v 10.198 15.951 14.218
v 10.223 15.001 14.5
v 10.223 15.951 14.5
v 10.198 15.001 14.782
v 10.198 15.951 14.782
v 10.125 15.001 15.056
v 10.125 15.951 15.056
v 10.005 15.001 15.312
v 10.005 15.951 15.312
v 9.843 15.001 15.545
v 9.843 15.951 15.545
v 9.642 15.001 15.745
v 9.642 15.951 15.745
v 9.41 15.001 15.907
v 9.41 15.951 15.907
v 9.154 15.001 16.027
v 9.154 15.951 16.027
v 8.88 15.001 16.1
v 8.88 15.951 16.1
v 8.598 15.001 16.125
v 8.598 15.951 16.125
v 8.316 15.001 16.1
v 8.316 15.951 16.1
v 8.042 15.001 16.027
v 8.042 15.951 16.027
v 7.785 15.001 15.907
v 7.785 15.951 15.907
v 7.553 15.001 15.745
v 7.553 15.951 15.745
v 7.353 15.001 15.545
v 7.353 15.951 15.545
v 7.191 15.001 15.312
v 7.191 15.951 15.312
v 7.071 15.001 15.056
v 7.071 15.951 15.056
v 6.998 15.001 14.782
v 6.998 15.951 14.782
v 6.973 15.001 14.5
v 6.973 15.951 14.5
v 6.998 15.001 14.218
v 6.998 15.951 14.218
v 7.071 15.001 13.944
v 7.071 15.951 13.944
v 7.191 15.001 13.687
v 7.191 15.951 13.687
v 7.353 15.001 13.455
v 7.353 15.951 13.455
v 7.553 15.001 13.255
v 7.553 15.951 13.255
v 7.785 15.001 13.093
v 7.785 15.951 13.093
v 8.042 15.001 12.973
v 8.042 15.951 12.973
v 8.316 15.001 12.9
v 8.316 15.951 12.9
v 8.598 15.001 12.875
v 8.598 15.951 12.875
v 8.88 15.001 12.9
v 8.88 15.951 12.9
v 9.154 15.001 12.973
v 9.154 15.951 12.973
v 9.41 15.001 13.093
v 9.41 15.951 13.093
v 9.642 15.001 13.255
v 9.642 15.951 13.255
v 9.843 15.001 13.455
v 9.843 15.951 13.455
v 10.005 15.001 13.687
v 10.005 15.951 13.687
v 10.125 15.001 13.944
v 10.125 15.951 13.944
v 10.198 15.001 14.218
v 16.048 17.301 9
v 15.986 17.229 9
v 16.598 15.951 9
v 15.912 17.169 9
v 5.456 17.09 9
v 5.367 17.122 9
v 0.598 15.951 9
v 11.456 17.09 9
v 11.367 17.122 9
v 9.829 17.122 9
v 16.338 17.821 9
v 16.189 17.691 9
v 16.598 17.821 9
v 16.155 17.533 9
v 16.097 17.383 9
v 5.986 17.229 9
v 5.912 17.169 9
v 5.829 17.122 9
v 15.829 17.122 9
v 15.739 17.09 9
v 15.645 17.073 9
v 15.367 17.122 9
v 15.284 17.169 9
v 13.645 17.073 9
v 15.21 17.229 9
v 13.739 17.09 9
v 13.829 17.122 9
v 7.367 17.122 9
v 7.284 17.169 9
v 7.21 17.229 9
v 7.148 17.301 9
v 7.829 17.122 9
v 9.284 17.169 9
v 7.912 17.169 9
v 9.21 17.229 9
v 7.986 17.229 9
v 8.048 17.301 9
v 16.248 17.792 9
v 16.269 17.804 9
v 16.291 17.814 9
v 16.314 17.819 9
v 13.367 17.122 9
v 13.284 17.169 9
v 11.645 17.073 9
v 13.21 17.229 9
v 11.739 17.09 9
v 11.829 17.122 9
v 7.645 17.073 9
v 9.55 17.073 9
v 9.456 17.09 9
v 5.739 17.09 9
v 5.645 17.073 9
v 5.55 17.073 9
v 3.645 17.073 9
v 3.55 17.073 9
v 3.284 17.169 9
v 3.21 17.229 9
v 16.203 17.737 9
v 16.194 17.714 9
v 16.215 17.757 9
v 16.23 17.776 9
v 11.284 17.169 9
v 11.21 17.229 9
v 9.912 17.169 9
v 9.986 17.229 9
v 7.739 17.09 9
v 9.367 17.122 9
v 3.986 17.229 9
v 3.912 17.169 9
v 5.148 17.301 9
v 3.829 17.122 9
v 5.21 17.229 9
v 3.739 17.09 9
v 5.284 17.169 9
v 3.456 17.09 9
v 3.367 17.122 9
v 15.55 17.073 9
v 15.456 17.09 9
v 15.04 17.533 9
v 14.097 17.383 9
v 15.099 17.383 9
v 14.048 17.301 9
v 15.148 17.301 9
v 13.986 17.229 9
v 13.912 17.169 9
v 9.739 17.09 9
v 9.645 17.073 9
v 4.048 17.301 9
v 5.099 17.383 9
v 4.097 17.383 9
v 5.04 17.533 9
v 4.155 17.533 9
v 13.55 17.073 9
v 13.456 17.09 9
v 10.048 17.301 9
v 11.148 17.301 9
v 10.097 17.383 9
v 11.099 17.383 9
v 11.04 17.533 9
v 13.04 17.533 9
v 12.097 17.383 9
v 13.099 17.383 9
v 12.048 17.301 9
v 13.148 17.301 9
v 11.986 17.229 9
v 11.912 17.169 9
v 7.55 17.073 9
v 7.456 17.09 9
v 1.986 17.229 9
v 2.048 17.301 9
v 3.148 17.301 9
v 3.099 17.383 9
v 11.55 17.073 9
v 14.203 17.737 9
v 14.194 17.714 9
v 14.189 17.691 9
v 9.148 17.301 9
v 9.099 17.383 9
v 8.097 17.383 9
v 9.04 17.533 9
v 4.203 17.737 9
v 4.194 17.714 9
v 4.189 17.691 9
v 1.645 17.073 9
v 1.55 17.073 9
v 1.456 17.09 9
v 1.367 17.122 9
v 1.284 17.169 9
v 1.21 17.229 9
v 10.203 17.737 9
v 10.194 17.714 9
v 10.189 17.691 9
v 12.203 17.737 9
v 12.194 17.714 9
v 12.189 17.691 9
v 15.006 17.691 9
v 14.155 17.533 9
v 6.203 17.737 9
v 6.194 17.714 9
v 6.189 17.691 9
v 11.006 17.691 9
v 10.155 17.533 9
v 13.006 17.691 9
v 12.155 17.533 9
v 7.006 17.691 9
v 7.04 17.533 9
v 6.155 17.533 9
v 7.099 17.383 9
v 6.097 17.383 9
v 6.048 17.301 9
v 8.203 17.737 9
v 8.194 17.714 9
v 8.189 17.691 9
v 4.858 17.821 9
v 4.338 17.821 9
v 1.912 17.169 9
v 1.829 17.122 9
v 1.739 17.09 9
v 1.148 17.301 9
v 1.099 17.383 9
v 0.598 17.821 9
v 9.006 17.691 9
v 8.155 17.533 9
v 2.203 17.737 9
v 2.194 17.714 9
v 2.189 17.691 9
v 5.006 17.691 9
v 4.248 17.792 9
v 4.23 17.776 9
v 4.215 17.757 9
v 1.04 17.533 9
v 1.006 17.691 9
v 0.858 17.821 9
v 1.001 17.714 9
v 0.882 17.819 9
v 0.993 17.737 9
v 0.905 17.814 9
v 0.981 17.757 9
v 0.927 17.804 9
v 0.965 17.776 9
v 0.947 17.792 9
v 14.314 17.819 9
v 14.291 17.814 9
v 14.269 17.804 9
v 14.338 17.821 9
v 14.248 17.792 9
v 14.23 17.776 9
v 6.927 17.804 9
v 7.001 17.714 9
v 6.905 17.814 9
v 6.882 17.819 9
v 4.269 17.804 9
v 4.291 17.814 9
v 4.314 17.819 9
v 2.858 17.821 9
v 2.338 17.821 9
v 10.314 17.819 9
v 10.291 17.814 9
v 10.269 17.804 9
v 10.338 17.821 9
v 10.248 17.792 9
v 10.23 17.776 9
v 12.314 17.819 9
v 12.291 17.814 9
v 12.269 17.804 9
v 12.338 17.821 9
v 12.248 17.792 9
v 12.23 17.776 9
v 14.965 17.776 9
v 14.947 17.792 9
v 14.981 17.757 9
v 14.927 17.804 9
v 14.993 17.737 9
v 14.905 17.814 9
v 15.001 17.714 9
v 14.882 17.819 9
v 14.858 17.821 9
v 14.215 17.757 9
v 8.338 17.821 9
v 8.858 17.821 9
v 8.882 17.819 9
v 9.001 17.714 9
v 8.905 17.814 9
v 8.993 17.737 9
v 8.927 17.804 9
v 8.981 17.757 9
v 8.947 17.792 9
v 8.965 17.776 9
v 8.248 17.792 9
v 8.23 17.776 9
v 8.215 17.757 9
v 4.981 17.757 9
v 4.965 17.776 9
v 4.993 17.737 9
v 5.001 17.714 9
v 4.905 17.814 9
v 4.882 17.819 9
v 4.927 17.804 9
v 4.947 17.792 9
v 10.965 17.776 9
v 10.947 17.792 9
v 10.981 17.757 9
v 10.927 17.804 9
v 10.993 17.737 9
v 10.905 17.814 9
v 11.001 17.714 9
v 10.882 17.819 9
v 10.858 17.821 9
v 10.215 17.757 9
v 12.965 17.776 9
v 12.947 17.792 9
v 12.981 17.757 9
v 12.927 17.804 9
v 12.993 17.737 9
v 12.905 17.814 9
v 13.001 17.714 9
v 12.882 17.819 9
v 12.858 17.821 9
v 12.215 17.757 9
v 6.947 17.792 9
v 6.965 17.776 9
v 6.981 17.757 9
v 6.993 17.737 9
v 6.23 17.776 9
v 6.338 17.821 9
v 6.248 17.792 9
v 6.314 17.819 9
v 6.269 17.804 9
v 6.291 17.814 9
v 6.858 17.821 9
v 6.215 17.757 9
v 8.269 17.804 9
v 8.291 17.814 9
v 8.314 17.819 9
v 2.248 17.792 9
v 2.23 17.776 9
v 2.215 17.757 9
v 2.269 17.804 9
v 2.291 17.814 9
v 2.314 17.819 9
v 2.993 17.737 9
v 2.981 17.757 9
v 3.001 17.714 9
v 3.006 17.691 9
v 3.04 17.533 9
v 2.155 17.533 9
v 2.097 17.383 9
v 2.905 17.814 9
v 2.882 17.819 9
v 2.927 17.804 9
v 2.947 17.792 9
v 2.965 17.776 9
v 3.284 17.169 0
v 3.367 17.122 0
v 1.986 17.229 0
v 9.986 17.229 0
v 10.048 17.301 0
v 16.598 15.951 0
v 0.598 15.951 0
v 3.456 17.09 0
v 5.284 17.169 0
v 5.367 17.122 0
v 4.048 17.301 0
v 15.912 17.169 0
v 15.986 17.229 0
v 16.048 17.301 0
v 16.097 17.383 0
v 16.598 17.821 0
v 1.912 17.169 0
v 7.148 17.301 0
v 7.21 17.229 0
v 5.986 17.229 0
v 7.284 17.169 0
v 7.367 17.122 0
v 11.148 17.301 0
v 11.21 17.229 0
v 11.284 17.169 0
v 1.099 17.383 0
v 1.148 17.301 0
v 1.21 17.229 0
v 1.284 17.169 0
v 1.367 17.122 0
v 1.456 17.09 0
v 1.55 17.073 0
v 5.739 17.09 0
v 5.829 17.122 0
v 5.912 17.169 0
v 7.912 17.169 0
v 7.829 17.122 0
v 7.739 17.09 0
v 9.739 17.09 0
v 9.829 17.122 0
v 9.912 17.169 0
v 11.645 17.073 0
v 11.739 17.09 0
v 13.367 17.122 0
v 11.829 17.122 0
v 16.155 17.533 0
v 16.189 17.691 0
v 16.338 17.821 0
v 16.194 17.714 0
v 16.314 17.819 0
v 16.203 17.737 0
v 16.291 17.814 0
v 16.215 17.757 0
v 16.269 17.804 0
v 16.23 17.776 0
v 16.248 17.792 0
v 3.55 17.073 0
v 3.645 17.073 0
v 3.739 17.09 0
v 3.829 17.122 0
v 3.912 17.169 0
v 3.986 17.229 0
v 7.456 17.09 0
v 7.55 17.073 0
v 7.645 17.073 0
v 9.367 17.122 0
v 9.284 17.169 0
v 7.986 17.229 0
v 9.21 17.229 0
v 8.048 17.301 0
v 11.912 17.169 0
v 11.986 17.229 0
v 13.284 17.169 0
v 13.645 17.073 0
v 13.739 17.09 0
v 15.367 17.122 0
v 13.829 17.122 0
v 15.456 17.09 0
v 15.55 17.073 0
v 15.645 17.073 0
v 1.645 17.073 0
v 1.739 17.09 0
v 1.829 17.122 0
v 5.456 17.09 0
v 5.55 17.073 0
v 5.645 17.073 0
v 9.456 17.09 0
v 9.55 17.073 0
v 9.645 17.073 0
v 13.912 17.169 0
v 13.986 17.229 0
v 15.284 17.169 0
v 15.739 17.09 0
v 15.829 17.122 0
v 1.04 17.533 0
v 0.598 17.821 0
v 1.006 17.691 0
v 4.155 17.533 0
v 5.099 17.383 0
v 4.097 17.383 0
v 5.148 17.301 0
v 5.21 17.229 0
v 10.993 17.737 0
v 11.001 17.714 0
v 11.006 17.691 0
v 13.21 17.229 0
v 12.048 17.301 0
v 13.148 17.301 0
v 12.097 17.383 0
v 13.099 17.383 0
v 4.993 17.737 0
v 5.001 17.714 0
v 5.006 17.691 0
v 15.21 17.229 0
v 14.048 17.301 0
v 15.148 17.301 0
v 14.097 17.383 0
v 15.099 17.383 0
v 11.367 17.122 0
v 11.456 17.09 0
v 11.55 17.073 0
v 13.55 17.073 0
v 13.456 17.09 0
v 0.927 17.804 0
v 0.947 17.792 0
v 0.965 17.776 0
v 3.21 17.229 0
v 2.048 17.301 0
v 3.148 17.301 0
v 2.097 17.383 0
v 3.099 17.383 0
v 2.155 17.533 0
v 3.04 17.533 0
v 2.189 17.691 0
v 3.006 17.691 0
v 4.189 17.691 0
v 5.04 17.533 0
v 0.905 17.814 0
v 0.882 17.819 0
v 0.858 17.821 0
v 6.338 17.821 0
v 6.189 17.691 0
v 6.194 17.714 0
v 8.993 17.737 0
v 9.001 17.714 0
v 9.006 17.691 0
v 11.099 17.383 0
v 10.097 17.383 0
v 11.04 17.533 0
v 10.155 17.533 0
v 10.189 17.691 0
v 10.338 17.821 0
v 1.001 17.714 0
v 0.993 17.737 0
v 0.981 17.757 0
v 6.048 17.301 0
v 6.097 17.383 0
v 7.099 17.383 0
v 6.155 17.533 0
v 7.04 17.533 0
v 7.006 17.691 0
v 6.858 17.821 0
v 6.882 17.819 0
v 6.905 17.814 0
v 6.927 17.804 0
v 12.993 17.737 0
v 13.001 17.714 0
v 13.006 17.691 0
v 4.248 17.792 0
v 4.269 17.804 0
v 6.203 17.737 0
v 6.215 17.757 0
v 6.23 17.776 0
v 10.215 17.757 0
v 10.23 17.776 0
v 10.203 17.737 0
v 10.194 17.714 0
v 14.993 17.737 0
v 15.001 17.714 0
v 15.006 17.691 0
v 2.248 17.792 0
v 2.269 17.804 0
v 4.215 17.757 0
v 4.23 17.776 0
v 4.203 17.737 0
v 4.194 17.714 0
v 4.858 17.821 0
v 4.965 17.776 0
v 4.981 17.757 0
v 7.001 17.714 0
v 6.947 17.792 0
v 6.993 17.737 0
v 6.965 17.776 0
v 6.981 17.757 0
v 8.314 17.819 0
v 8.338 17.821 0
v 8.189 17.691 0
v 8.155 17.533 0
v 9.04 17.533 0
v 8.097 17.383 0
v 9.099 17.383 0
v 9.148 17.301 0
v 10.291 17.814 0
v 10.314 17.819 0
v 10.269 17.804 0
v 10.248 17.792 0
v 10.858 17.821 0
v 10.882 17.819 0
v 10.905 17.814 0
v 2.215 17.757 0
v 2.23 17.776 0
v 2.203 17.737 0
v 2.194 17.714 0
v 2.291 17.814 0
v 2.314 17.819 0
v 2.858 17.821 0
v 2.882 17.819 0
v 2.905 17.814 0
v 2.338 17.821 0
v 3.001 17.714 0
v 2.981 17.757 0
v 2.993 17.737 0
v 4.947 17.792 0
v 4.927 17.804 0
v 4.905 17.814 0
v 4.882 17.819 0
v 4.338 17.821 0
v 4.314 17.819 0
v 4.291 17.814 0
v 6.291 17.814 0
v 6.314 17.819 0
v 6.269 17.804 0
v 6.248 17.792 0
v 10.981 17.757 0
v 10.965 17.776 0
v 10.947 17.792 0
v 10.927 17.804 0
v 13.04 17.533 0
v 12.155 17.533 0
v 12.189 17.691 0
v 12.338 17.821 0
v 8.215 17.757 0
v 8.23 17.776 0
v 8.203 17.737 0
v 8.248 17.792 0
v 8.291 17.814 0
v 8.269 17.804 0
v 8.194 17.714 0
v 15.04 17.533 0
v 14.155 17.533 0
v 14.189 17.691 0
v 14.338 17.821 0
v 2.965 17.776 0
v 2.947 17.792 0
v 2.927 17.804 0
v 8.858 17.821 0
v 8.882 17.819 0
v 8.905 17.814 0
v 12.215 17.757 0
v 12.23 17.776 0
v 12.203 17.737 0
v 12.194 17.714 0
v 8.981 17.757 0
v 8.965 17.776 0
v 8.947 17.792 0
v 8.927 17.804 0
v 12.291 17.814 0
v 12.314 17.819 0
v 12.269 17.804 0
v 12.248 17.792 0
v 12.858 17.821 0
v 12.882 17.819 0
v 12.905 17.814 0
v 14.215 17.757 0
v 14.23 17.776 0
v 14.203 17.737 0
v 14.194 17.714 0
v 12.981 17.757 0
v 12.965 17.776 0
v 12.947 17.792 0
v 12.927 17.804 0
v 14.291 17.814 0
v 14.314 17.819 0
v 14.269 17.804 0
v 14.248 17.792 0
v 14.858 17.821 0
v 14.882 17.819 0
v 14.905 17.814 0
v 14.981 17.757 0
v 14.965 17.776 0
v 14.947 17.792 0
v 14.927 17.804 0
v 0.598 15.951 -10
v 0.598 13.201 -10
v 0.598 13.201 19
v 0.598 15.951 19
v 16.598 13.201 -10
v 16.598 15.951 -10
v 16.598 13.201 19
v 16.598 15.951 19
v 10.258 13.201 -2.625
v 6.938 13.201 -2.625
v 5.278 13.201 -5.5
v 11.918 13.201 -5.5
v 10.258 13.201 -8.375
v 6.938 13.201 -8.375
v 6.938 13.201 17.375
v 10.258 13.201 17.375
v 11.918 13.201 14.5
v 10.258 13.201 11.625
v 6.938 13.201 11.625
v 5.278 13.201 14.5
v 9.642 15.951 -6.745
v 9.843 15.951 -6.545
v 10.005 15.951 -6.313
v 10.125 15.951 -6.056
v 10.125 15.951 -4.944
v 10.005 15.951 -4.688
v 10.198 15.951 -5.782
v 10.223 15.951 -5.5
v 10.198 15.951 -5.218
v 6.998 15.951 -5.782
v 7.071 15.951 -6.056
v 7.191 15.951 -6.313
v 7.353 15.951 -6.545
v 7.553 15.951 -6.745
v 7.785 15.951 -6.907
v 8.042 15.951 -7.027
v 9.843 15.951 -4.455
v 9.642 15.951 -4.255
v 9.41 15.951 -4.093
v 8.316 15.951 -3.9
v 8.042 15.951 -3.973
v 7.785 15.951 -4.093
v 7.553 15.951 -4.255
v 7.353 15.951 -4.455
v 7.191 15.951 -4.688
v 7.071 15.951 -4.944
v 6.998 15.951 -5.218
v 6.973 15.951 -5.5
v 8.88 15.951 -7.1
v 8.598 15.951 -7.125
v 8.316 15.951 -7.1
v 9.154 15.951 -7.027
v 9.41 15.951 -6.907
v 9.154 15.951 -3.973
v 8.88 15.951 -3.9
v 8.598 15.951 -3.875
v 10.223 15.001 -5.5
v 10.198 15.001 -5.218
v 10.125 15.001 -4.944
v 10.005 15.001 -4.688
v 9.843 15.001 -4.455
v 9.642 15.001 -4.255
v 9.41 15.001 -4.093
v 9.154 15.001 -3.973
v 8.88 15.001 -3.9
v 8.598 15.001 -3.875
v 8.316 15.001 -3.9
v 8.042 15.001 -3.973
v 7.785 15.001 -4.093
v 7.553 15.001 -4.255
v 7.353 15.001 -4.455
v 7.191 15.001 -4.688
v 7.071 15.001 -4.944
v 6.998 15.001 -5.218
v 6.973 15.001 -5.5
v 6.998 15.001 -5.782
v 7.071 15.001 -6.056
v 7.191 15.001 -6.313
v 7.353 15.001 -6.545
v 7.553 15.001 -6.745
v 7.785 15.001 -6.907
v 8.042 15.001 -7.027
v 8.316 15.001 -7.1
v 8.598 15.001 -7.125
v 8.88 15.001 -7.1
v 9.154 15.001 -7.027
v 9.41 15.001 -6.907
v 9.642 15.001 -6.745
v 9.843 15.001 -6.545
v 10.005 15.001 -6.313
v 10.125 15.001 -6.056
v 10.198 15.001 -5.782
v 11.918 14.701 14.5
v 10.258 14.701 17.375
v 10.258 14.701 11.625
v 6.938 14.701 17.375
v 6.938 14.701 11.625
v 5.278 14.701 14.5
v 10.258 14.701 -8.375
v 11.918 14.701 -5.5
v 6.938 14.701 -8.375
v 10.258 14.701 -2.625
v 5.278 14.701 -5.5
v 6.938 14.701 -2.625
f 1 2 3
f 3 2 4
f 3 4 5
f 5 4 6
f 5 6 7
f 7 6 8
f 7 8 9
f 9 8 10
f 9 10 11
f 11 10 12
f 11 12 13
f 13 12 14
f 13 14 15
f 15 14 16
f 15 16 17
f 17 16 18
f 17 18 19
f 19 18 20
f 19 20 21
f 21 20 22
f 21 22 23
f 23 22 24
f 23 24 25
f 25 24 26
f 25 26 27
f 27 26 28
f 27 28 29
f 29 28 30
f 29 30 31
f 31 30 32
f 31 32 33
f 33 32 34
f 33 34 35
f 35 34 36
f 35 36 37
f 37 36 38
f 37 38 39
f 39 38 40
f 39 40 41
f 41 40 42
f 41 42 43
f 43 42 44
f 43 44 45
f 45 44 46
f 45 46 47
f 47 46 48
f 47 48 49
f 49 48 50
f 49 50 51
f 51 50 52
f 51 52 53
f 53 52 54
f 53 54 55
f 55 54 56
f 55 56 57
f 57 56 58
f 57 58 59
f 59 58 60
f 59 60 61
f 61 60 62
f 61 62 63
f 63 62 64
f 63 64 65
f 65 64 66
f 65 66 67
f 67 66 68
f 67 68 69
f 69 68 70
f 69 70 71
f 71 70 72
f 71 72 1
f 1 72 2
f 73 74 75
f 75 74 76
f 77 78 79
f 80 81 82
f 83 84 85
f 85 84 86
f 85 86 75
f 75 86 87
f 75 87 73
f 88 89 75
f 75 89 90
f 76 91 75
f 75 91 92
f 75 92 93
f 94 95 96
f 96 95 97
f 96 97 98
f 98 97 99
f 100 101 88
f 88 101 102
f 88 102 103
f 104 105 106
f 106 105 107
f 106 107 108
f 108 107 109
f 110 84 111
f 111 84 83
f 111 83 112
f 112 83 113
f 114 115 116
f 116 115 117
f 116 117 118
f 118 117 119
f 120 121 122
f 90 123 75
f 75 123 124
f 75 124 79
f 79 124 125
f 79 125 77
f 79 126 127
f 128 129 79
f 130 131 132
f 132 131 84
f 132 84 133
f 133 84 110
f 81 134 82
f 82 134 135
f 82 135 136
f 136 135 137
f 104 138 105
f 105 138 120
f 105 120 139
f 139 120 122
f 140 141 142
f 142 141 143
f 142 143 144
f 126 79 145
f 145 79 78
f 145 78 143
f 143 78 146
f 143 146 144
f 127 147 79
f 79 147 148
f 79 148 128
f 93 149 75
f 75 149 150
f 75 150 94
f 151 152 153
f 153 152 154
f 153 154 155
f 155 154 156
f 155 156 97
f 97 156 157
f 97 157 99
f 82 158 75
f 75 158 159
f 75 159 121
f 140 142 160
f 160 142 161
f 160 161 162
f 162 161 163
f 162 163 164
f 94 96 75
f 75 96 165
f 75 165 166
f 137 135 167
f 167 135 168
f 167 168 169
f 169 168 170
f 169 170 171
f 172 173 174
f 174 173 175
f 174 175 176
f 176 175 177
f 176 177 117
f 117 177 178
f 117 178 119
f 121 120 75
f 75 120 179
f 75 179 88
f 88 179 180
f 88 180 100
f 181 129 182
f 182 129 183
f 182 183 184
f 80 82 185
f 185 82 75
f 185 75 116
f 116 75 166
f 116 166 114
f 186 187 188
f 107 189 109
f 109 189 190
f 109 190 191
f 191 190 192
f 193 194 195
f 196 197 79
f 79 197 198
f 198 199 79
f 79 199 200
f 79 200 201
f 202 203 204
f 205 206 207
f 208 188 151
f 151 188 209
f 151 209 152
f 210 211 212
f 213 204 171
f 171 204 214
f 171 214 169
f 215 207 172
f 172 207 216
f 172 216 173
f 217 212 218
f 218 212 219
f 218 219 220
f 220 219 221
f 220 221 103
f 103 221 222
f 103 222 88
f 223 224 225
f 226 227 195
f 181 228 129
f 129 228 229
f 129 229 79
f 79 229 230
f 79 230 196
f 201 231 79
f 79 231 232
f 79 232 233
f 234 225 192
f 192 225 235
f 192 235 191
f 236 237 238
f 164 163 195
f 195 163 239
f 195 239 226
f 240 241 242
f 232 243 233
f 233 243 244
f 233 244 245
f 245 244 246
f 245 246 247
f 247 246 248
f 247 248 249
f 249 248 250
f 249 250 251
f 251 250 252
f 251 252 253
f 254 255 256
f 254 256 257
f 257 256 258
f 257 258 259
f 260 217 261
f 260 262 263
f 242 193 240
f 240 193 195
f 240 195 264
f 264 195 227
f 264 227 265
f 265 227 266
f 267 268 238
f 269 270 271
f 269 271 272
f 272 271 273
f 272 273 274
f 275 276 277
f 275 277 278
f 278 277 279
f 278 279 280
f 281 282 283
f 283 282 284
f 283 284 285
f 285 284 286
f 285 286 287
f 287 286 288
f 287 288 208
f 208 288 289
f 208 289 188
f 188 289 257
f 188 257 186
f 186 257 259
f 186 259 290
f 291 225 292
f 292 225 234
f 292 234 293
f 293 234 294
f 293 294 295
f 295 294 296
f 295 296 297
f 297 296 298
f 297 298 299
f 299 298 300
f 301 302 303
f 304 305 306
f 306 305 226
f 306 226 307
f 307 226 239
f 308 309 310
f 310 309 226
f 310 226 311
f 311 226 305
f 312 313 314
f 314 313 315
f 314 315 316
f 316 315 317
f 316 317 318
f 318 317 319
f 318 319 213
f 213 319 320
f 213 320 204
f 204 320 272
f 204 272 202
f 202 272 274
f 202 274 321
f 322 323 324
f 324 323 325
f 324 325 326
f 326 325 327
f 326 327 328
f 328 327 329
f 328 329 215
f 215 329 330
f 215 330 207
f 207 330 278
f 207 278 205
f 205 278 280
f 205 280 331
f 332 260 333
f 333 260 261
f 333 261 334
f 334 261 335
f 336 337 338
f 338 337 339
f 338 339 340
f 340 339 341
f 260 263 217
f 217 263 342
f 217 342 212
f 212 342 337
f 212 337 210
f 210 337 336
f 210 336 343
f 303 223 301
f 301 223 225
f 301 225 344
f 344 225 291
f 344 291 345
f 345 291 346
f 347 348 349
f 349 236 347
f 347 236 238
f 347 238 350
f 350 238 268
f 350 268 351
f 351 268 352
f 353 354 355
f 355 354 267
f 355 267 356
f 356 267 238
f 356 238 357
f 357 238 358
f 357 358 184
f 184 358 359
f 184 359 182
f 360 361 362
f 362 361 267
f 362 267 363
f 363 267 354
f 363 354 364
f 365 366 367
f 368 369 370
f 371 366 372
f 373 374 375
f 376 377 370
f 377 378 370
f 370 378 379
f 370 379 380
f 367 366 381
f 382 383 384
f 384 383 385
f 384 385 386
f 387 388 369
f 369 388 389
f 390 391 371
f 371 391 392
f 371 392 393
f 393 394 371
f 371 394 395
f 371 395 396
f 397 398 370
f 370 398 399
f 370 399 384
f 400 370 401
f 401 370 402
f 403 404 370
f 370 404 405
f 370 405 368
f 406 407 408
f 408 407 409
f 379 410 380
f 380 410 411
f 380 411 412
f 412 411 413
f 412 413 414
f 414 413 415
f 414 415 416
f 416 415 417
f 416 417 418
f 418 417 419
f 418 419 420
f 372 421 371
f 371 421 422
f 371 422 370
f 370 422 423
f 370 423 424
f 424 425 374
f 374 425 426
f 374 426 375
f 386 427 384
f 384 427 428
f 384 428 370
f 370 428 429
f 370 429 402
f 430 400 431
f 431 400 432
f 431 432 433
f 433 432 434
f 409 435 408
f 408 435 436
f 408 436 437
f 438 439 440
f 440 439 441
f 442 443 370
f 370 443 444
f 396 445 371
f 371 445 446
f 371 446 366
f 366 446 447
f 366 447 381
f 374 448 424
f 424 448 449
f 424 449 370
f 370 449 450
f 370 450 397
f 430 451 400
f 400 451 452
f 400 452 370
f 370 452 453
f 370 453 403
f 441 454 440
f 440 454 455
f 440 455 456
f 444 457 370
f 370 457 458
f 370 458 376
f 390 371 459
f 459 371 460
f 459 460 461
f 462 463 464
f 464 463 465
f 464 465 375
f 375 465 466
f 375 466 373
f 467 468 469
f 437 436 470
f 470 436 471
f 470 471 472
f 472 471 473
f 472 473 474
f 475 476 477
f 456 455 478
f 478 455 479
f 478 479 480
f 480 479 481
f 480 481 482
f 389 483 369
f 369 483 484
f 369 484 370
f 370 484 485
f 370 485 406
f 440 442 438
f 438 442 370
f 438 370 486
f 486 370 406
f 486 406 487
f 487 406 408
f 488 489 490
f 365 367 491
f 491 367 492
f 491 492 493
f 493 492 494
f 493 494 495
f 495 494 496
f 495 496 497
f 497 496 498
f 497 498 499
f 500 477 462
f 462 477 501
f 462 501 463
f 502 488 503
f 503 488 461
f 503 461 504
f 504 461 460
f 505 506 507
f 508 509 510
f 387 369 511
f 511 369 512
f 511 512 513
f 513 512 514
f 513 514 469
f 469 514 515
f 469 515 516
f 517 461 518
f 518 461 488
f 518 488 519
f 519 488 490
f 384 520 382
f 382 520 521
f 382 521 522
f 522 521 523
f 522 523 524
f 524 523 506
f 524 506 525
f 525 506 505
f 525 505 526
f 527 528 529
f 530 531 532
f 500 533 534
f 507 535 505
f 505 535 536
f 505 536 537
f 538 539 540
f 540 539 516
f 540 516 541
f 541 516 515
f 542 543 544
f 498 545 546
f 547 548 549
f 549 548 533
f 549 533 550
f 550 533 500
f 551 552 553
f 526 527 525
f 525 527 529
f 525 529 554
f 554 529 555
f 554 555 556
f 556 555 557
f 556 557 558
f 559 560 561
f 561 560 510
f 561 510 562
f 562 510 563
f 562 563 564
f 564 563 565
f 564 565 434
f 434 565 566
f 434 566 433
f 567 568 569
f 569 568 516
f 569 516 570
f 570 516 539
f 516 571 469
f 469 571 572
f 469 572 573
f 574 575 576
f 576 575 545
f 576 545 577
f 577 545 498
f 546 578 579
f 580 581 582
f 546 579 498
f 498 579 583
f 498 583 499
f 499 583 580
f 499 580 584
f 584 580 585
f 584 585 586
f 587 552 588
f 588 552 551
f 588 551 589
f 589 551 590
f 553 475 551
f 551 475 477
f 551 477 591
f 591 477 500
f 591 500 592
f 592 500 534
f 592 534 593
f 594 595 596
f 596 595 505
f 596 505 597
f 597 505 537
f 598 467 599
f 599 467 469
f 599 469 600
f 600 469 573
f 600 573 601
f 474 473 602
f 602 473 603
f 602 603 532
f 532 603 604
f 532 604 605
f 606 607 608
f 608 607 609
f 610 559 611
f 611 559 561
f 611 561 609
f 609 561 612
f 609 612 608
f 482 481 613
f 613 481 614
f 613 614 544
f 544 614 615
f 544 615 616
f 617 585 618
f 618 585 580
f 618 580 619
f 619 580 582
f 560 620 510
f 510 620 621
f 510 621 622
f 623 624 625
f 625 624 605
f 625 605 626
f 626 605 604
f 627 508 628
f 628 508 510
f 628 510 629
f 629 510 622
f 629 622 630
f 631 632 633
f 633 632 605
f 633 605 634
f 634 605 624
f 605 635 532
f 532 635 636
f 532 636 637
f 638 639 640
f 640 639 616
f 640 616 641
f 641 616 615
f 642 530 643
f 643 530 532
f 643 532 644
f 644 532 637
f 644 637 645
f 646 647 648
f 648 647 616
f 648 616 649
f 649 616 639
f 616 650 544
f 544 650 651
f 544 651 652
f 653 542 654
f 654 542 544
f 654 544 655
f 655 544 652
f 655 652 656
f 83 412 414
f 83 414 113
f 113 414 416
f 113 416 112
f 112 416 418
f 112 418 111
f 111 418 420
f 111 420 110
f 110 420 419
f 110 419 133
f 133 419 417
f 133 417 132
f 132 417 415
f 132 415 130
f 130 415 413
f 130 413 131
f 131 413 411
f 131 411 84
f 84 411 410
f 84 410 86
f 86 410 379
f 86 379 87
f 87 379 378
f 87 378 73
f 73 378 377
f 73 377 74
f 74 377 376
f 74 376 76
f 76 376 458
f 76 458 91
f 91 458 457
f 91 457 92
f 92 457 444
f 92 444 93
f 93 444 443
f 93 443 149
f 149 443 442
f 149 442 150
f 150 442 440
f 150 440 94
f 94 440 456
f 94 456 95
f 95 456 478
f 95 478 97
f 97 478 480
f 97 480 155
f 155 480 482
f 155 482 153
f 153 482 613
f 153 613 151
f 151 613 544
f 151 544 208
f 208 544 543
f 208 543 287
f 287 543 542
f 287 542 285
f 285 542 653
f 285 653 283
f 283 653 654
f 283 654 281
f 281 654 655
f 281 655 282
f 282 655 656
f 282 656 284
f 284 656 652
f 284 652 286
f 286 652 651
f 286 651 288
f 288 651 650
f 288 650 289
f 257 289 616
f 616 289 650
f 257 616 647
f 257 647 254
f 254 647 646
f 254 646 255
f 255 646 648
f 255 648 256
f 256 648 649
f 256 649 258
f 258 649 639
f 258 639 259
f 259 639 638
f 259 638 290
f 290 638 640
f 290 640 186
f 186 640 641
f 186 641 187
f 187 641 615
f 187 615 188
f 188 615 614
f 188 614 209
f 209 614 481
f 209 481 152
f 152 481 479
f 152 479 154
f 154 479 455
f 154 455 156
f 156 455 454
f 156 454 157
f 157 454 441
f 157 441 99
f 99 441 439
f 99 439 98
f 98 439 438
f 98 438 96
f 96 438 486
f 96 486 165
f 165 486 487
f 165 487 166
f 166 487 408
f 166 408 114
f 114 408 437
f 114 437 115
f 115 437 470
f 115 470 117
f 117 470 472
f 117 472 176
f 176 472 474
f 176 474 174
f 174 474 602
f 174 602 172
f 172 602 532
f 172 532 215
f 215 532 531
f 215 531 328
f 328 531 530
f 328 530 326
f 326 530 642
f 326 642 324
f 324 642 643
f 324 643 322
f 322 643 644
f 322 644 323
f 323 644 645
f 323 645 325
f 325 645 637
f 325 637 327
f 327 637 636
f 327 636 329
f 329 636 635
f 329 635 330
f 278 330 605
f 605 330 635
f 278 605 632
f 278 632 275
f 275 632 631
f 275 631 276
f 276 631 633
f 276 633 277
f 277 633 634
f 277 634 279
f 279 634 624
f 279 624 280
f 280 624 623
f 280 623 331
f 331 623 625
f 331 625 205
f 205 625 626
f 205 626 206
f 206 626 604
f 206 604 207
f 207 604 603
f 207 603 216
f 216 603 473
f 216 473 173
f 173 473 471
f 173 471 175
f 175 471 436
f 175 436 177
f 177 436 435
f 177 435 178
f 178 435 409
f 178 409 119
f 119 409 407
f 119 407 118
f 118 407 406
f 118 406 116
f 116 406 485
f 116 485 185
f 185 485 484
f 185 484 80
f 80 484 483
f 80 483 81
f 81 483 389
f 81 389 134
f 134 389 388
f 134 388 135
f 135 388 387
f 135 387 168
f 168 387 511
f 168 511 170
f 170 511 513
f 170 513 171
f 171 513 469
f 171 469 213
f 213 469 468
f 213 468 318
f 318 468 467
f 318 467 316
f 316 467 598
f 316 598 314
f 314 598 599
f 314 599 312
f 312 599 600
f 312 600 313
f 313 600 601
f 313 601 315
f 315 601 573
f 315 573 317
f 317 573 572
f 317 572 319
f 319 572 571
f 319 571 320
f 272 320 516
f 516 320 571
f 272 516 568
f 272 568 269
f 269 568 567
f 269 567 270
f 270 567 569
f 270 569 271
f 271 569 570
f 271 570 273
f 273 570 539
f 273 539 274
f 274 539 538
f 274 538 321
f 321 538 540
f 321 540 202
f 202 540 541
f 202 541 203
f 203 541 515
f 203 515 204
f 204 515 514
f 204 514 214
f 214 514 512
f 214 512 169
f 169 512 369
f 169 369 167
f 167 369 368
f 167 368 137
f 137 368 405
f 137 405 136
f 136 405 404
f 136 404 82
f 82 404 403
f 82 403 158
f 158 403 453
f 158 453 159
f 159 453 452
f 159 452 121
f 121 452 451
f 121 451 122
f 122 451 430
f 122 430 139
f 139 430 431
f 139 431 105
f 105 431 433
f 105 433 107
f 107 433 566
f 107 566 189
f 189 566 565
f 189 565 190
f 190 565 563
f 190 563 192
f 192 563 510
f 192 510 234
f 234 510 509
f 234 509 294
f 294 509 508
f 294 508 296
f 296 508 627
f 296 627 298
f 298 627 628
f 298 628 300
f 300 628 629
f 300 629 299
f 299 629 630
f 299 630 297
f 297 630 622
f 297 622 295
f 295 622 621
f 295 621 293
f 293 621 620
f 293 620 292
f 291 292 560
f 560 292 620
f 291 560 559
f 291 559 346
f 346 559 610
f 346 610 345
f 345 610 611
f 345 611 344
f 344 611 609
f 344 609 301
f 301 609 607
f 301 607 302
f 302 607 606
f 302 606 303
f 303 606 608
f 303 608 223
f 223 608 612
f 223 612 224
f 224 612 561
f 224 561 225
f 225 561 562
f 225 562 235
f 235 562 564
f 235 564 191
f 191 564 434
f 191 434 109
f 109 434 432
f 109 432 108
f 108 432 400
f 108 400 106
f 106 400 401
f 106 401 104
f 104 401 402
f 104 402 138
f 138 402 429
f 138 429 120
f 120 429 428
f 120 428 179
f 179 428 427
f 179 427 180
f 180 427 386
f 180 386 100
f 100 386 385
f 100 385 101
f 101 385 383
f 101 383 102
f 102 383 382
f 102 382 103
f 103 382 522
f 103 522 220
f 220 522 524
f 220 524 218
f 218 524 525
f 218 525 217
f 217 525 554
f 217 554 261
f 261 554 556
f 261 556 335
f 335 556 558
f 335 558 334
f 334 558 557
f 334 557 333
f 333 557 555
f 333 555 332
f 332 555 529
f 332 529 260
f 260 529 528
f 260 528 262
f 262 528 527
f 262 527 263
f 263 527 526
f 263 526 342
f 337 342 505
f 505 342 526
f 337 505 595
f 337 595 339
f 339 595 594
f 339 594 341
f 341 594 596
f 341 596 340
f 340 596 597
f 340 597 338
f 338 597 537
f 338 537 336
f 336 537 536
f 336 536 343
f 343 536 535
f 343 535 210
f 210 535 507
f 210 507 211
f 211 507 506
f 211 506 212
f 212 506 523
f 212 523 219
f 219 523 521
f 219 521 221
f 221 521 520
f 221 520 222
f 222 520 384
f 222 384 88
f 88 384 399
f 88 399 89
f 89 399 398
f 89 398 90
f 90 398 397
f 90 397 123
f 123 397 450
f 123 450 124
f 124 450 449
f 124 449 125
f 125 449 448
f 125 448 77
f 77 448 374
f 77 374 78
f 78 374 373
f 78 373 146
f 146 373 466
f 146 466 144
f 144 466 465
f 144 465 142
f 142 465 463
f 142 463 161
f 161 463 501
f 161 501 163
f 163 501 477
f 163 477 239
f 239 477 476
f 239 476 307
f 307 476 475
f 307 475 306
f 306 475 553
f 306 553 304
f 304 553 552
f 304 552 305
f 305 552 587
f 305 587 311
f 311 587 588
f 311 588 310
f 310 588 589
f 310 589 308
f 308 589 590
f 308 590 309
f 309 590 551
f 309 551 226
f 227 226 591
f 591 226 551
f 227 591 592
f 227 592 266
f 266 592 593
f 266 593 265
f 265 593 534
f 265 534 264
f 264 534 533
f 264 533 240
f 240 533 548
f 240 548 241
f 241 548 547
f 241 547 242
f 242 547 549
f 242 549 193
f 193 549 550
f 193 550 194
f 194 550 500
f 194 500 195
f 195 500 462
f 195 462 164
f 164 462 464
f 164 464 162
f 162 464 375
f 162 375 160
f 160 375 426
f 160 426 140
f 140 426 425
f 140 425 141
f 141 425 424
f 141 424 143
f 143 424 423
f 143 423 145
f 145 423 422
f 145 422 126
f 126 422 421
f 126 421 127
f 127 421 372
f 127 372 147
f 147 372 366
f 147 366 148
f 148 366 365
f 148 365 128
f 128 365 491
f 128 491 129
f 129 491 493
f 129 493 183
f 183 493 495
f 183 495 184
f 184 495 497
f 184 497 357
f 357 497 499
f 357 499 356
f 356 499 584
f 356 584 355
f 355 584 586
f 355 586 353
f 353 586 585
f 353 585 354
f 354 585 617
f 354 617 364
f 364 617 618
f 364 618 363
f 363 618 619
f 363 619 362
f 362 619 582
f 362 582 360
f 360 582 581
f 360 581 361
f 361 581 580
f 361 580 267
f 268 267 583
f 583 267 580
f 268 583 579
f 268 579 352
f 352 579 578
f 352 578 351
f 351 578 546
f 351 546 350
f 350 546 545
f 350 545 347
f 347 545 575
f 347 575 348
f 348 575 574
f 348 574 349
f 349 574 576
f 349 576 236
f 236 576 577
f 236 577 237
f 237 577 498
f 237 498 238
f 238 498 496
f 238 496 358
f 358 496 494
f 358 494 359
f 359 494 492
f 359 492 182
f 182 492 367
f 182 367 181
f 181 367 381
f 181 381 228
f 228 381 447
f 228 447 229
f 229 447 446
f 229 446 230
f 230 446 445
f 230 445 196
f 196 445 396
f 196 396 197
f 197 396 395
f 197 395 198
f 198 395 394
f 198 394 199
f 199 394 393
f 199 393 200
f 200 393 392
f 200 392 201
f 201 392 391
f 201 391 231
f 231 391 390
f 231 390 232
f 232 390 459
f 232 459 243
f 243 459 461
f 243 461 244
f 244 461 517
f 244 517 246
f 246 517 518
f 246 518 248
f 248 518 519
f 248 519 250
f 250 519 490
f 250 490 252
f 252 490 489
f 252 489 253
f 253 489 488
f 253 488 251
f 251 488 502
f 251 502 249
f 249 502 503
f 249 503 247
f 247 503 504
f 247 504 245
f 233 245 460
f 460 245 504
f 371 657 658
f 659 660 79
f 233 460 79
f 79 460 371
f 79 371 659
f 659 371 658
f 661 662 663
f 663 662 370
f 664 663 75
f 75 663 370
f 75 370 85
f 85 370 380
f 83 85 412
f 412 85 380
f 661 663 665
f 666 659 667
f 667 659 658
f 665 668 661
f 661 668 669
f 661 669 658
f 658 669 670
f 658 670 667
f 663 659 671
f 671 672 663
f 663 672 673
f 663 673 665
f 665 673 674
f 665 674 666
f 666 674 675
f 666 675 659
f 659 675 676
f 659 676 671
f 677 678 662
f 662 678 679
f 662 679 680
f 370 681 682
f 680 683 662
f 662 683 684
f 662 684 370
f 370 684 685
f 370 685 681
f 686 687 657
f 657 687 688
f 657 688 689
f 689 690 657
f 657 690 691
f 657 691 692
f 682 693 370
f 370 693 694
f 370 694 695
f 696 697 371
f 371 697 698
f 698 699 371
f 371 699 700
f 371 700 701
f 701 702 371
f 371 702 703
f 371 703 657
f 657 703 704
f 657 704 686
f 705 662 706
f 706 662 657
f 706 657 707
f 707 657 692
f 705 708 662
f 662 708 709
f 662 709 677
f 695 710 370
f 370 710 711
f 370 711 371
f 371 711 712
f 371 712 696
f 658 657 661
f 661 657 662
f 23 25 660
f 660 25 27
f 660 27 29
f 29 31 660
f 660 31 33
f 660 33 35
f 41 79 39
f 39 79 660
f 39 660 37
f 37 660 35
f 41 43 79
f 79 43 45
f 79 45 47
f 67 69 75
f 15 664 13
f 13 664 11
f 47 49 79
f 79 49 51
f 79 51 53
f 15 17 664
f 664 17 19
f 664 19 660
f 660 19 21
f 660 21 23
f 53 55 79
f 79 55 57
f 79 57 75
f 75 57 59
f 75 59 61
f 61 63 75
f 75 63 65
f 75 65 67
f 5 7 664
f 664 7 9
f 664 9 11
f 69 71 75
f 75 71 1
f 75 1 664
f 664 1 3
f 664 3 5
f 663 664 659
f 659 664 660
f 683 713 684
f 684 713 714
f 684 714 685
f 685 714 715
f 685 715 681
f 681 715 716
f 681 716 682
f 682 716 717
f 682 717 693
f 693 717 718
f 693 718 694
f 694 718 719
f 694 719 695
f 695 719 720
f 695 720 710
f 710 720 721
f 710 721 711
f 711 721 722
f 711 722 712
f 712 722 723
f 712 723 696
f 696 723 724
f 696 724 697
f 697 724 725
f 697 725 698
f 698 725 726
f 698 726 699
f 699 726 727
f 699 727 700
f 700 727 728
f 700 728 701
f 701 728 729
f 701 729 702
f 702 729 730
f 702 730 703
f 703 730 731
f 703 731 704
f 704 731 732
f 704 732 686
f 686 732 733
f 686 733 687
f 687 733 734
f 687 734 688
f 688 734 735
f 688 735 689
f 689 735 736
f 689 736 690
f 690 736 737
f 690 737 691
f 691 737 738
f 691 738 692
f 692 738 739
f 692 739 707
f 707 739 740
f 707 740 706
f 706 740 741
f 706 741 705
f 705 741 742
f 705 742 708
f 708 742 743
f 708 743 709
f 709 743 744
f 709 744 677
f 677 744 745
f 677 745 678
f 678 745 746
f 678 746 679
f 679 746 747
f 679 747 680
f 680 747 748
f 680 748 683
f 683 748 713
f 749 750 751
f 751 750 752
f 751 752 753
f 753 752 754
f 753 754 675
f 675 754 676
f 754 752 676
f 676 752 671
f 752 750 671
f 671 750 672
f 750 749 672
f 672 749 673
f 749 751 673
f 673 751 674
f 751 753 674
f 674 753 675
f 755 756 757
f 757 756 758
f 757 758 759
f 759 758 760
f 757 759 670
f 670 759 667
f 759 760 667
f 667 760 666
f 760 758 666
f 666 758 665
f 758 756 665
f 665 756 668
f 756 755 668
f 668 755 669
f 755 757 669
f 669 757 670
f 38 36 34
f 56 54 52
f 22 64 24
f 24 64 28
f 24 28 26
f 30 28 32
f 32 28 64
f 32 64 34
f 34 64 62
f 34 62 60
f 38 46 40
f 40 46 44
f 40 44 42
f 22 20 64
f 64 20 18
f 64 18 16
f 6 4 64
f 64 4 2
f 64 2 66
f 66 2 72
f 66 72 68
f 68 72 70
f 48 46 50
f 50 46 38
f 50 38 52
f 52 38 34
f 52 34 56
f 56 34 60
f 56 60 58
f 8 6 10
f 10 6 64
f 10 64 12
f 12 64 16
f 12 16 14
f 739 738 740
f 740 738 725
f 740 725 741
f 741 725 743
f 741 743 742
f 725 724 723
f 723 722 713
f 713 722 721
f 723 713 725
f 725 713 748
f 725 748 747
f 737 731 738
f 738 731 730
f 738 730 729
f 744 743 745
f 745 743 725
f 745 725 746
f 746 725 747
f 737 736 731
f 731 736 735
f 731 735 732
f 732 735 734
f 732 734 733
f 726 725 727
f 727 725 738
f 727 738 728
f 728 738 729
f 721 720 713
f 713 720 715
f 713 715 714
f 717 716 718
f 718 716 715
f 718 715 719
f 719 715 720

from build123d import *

# Parameters (mm, degrees)
BOSS_EXTRUDE1_DEPTH  = 9
SKETCH6_W            = 16
SKETCH6_H            = 9
BOSS_EXTRUDE6_DEPTH  = 2.75
SKETCH7_W            = 16
SKETCH7_H            = 2.75
BOSS_EXTRUDE7_DEPTH  = 10
SKETCH8_W            = 16
SKETCH8_H            = 2.75
BOSS_EXTRUDE8_DEPTH  = 10
SKETCH10_R           = 1.625
CUT_EXTRUDE1_DEPTH   = 10
CUT_EXTRUDE2_DEPTH   = 1.5
BOSS_EXTRUDE11_DEPTH = 0.3


with BuildPart() as part:
    # Sketch1 → Boss-Extrude1 (new body)
    with BuildSketch(Plane.XY):
        with BuildLine():
            Line((16.338025278, 17.821295042), (16.597849853, 17.821295042))
            Line((16.597849853, 17.821295042), (16.597849853, 15.951295042))
            Line((16.597849853, 15.951295042), (0.597849853, 15.951295042))
            Line((0.597849853, 15.951295042), (0.597849853, 17.821295042))
            Line((0.597849853, 17.821295042), (0.857674428, 17.821295042))
            ThreePointArc((0.857674428, 17.821295042), (0.956581499, 17.784066453), (1.006392961, 17.690860259))
            ThreePointArc((1.006392961, 17.690860259), (1.040238138, 17.533232888), (1.098973448, 17.383092794))
            ThreePointArc((1.098973448, 17.383092794), (1.303700441, 17.155655983), (1.597849853, 17.071295042))
            ThreePointArc((1.597849853, 17.071295042), (1.891999264, 17.155655983), (2.096726257, 17.383092794))
            ThreePointArc((2.096726257, 17.383092794), (2.155461567, 17.533232888), (2.189306744, 17.690860259))
            ThreePointArc((2.189306744, 17.690860259), (2.239118207, 17.784066453), (2.338025278, 17.821295042))
            Line((2.338025278, 17.821295042), (2.857674428, 17.821295042))
            ThreePointArc((2.857674428, 17.821295042), (2.956581499, 17.784066453), (3.006392961, 17.690860259))
            ThreePointArc((3.006392961, 17.690860259), (3.040238138, 17.533232888), (3.098973448, 17.383092794))
            ThreePointArc((3.098973448, 17.383092794), (3.303700441, 17.155655983), (3.597849853, 17.071295042))
            ThreePointArc((3.597849853, 17.071295042), (3.891999264, 17.155655983), (4.096726257, 17.383092794))
            ThreePointArc((4.096726257, 17.383092794), (4.155461567, 17.533232888), (4.189306744, 17.690860259))
            ThreePointArc((4.189306744, 17.690860259), (4.239118207, 17.784066453), (4.338025278, 17.821295042))
            Line((4.338025278, 17.821295042), (4.857674428, 17.821295042))
            ThreePointArc((4.857674428, 17.821295042), (4.956581499, 17.784066453), (5.006392961, 17.690860259))
            ThreePointArc((5.006392961, 17.690860259), (5.040238138, 17.533232888), (5.098973448, 17.383092794))
            ThreePointArc((5.098973448, 17.383092794), (5.303700441, 17.155655983), (5.597849853, 17.071295042))
            ThreePointArc((5.597849853, 17.071295042), (5.891999264, 17.155655983), (6.096726257, 17.383092794))
            ThreePointArc((6.096726257, 17.383092794), (6.155461567, 17.533232888), (6.189306744, 17.690860259))
            ThreePointArc((6.189306744, 17.690860259), (6.239118207, 17.784066453), (6.338025278, 17.821295042))
            Line((6.338025278, 17.821295042), (6.857674428, 17.821295042))
            ThreePointArc((6.857674428, 17.821295042), (6.956581499, 17.784066453), (7.006392961, 17.690860259))
            ThreePointArc((7.006392961, 17.690860259), (7.040238138, 17.533232888), (7.098973448, 17.383092794))
            ThreePointArc((7.098973448, 17.383092794), (7.303700441, 17.155655983), (7.597849853, 17.071295042))
            ThreePointArc((7.597849853, 17.071295042), (7.891999264, 17.155655983), (8.096726257, 17.383092794))
            ThreePointArc((8.096726257, 17.383092794), (8.155461567, 17.533232888), (8.189306744, 17.690860259))
            ThreePointArc((8.189306744, 17.690860259), (8.239118207, 17.784066453), (8.338025278, 17.821295042))
            Line((8.338025278, 17.821295042), (8.857674428, 17.821295042))
            ThreePointArc((8.857674428, 17.821295042), (8.956581499, 17.784066453), (9.006392961, 17.690860259))
            ThreePointArc((9.006392961, 17.690860259), (9.040238138, 17.533232888), (9.098973448, 17.383092794))
            ThreePointArc((9.098973448, 17.383092794), (9.303700441, 17.155655983), (9.597849853, 17.071295042))
            ThreePointArc((9.597849853, 17.071295042), (9.891999264, 17.155655983), (10.096726257, 17.383092794))
            ThreePointArc((10.096726257, 17.383092794), (10.155461567, 17.533232888), (10.189306744, 17.690860259))
            ThreePointArc((10.189306744, 17.690860259), (10.239118207, 17.784066453), (10.338025278, 17.821295042))
            Line((10.338025278, 17.821295042), (10.857674428, 17.821295042))
            ThreePointArc((10.857674428, 17.821295042), (10.956581499, 17.784066453), (11.006392961, 17.690860259))
            ThreePointArc((11.006392961, 17.690860259), (11.040238138, 17.533232888), (11.098973448, 17.383092794))
            ThreePointArc((11.098973448, 17.383092794), (11.303700441, 17.155655983), (11.597849853, 17.071295042))
            ThreePointArc((11.597849853, 17.071295042), (11.891999264, 17.155655983), (12.096726257, 17.383092794))
            ThreePointArc((12.096726257, 17.383092794), (12.155461567, 17.533232888), (12.189306744, 17.690860259))
            ThreePointArc((12.189306744, 17.690860259), (12.239118207, 17.784066453), (12.338025278, 17.821295042))
            Line((12.338025278, 17.821295042), (12.857674428, 17.821295042))
            ThreePointArc((12.857674428, 17.821295042), (12.956581499, 17.784066453), (13.006392961, 17.690860259))
            ThreePointArc((13.006392961, 17.690860259), (13.040238138, 17.533232888), (13.098973448, 17.383092794))
            ThreePointArc((13.098973448, 17.383092794), (13.303700441, 17.155655983), (13.597849853, 17.071295042))
            ThreePointArc((13.597849853, 17.071295042), (13.891999264, 17.155655983), (14.096726257, 17.383092794))
            ThreePointArc((14.096726257, 17.383092794), (14.155461567, 17.533232888), (14.189306744, 17.690860259))
            ThreePointArc((14.189306744, 17.690860259), (14.239118207, 17.784066453), (14.338025278, 17.821295042))
            Line((14.338025278, 17.821295042), (14.857674428, 17.821295042))
            ThreePointArc((14.857674428, 17.821295042), (14.956581499, 17.784066453), (15.006392961, 17.690860259))
            ThreePointArc((15.006392961, 17.690860259), (15.040238138, 17.533232888), (15.098973448, 17.383092794))
            ThreePointArc((15.098973448, 17.383092794), (15.303700441, 17.155655983), (15.597849853, 17.071295042))
            ThreePointArc((15.597849853, 17.071295042), (15.891999264, 17.155655983), (16.096726257, 17.383092794))
            ThreePointArc((16.096726257, 17.383092794), (16.155461567, 17.533232888), (16.189306744, 17.690860259))
            ThreePointArc((16.189306744, 17.690860259), (16.239118207, 17.784066453), (16.338025278, 17.821295042))
        make_face()
    extrude(amount=BOSS_EXTRUDE1_DEPTH)

    # Sketch6 → Boss-Extrude6 (add)
    with BuildSketch(Plane.XZ.offset(-15.951295042)):
        with Locations((8.597849853, 4.5)):
            Rectangle(SKETCH6_W, SKETCH6_H)
    extrude(amount=BOSS_EXTRUDE6_DEPTH)

    # Sketch7 → Boss-Extrude7 (add)
    with BuildSketch(Plane(origin=(0, 0, 0), x_dir=(-1, 0, 0), z_dir=(0, 0, -1))):
        with Locations((-8.597849853, 14.576295042)):
            Rectangle(SKETCH7_W, SKETCH7_H)
    extrude(amount=BOSS_EXTRUDE7_DEPTH)

    # Sketch8 → Boss-Extrude8 (add)
    with BuildSketch(Plane.XY.offset(9)):
        with Locations((8.597849853, 14.576295042)):
            Rectangle(SKETCH8_W, SKETCH8_H)
    extrude(amount=BOSS_EXTRUDE8_DEPTH)

    # Sketch10 → Cut-Extrude1 (cut)
    with BuildSketch(Plane.XZ.offset(-13.201295042)):
        with Locations((8.597849853, 14.5)):
            Circle(SKETCH10_R)
        with Locations((8.597849853, -5.5)):
            Circle(SKETCH10_R)
    extrude(amount=-CUT_EXTRUDE1_DEPTH, mode=Mode.SUBTRACT)

    # Sketch11 → Cut-Extrude2 (cut)
    with BuildSketch(Plane.XZ.offset(-13.201295042)):
        Polygon((6.937967829, 11.625), (10.257731877, 11.625), (11.9176139, 14.5), (10.257731877, 17.375), (6.937967829, 17.375), (5.278085805, 14.5), align=None)
        Polygon((5.278085805, -5.5), (6.937967829, -2.625), (10.257731877, -2.625), (11.9176139, -5.5), (10.257731877, -8.375), (6.937967829, -8.375), align=None)
    extrude(amount=-CUT_EXTRUDE2_DEPTH, mode=Mode.SUBTRACT)

    # Sketch15 → Boss-Extrude11 (add)
    with BuildSketch(Plane.XZ.offset(-14.701295042)):
        Polygon((5.278085805, 14.5), (6.937967829, 11.625), (10.257731877, 11.625), (11.9176139, 14.5), (10.257731877, 17.375), (6.937967829, 17.375), align=None)
        Polygon((6.937967829, -8.375), (5.278085805, -5.5), (6.937967829, -2.625), (10.257731877, -2.625), (11.9176139, -5.5), (10.257731877, -8.375), align=None)
    extrude(amount=-BOSS_EXTRUDE11_DEPTH)


solid = part.part
